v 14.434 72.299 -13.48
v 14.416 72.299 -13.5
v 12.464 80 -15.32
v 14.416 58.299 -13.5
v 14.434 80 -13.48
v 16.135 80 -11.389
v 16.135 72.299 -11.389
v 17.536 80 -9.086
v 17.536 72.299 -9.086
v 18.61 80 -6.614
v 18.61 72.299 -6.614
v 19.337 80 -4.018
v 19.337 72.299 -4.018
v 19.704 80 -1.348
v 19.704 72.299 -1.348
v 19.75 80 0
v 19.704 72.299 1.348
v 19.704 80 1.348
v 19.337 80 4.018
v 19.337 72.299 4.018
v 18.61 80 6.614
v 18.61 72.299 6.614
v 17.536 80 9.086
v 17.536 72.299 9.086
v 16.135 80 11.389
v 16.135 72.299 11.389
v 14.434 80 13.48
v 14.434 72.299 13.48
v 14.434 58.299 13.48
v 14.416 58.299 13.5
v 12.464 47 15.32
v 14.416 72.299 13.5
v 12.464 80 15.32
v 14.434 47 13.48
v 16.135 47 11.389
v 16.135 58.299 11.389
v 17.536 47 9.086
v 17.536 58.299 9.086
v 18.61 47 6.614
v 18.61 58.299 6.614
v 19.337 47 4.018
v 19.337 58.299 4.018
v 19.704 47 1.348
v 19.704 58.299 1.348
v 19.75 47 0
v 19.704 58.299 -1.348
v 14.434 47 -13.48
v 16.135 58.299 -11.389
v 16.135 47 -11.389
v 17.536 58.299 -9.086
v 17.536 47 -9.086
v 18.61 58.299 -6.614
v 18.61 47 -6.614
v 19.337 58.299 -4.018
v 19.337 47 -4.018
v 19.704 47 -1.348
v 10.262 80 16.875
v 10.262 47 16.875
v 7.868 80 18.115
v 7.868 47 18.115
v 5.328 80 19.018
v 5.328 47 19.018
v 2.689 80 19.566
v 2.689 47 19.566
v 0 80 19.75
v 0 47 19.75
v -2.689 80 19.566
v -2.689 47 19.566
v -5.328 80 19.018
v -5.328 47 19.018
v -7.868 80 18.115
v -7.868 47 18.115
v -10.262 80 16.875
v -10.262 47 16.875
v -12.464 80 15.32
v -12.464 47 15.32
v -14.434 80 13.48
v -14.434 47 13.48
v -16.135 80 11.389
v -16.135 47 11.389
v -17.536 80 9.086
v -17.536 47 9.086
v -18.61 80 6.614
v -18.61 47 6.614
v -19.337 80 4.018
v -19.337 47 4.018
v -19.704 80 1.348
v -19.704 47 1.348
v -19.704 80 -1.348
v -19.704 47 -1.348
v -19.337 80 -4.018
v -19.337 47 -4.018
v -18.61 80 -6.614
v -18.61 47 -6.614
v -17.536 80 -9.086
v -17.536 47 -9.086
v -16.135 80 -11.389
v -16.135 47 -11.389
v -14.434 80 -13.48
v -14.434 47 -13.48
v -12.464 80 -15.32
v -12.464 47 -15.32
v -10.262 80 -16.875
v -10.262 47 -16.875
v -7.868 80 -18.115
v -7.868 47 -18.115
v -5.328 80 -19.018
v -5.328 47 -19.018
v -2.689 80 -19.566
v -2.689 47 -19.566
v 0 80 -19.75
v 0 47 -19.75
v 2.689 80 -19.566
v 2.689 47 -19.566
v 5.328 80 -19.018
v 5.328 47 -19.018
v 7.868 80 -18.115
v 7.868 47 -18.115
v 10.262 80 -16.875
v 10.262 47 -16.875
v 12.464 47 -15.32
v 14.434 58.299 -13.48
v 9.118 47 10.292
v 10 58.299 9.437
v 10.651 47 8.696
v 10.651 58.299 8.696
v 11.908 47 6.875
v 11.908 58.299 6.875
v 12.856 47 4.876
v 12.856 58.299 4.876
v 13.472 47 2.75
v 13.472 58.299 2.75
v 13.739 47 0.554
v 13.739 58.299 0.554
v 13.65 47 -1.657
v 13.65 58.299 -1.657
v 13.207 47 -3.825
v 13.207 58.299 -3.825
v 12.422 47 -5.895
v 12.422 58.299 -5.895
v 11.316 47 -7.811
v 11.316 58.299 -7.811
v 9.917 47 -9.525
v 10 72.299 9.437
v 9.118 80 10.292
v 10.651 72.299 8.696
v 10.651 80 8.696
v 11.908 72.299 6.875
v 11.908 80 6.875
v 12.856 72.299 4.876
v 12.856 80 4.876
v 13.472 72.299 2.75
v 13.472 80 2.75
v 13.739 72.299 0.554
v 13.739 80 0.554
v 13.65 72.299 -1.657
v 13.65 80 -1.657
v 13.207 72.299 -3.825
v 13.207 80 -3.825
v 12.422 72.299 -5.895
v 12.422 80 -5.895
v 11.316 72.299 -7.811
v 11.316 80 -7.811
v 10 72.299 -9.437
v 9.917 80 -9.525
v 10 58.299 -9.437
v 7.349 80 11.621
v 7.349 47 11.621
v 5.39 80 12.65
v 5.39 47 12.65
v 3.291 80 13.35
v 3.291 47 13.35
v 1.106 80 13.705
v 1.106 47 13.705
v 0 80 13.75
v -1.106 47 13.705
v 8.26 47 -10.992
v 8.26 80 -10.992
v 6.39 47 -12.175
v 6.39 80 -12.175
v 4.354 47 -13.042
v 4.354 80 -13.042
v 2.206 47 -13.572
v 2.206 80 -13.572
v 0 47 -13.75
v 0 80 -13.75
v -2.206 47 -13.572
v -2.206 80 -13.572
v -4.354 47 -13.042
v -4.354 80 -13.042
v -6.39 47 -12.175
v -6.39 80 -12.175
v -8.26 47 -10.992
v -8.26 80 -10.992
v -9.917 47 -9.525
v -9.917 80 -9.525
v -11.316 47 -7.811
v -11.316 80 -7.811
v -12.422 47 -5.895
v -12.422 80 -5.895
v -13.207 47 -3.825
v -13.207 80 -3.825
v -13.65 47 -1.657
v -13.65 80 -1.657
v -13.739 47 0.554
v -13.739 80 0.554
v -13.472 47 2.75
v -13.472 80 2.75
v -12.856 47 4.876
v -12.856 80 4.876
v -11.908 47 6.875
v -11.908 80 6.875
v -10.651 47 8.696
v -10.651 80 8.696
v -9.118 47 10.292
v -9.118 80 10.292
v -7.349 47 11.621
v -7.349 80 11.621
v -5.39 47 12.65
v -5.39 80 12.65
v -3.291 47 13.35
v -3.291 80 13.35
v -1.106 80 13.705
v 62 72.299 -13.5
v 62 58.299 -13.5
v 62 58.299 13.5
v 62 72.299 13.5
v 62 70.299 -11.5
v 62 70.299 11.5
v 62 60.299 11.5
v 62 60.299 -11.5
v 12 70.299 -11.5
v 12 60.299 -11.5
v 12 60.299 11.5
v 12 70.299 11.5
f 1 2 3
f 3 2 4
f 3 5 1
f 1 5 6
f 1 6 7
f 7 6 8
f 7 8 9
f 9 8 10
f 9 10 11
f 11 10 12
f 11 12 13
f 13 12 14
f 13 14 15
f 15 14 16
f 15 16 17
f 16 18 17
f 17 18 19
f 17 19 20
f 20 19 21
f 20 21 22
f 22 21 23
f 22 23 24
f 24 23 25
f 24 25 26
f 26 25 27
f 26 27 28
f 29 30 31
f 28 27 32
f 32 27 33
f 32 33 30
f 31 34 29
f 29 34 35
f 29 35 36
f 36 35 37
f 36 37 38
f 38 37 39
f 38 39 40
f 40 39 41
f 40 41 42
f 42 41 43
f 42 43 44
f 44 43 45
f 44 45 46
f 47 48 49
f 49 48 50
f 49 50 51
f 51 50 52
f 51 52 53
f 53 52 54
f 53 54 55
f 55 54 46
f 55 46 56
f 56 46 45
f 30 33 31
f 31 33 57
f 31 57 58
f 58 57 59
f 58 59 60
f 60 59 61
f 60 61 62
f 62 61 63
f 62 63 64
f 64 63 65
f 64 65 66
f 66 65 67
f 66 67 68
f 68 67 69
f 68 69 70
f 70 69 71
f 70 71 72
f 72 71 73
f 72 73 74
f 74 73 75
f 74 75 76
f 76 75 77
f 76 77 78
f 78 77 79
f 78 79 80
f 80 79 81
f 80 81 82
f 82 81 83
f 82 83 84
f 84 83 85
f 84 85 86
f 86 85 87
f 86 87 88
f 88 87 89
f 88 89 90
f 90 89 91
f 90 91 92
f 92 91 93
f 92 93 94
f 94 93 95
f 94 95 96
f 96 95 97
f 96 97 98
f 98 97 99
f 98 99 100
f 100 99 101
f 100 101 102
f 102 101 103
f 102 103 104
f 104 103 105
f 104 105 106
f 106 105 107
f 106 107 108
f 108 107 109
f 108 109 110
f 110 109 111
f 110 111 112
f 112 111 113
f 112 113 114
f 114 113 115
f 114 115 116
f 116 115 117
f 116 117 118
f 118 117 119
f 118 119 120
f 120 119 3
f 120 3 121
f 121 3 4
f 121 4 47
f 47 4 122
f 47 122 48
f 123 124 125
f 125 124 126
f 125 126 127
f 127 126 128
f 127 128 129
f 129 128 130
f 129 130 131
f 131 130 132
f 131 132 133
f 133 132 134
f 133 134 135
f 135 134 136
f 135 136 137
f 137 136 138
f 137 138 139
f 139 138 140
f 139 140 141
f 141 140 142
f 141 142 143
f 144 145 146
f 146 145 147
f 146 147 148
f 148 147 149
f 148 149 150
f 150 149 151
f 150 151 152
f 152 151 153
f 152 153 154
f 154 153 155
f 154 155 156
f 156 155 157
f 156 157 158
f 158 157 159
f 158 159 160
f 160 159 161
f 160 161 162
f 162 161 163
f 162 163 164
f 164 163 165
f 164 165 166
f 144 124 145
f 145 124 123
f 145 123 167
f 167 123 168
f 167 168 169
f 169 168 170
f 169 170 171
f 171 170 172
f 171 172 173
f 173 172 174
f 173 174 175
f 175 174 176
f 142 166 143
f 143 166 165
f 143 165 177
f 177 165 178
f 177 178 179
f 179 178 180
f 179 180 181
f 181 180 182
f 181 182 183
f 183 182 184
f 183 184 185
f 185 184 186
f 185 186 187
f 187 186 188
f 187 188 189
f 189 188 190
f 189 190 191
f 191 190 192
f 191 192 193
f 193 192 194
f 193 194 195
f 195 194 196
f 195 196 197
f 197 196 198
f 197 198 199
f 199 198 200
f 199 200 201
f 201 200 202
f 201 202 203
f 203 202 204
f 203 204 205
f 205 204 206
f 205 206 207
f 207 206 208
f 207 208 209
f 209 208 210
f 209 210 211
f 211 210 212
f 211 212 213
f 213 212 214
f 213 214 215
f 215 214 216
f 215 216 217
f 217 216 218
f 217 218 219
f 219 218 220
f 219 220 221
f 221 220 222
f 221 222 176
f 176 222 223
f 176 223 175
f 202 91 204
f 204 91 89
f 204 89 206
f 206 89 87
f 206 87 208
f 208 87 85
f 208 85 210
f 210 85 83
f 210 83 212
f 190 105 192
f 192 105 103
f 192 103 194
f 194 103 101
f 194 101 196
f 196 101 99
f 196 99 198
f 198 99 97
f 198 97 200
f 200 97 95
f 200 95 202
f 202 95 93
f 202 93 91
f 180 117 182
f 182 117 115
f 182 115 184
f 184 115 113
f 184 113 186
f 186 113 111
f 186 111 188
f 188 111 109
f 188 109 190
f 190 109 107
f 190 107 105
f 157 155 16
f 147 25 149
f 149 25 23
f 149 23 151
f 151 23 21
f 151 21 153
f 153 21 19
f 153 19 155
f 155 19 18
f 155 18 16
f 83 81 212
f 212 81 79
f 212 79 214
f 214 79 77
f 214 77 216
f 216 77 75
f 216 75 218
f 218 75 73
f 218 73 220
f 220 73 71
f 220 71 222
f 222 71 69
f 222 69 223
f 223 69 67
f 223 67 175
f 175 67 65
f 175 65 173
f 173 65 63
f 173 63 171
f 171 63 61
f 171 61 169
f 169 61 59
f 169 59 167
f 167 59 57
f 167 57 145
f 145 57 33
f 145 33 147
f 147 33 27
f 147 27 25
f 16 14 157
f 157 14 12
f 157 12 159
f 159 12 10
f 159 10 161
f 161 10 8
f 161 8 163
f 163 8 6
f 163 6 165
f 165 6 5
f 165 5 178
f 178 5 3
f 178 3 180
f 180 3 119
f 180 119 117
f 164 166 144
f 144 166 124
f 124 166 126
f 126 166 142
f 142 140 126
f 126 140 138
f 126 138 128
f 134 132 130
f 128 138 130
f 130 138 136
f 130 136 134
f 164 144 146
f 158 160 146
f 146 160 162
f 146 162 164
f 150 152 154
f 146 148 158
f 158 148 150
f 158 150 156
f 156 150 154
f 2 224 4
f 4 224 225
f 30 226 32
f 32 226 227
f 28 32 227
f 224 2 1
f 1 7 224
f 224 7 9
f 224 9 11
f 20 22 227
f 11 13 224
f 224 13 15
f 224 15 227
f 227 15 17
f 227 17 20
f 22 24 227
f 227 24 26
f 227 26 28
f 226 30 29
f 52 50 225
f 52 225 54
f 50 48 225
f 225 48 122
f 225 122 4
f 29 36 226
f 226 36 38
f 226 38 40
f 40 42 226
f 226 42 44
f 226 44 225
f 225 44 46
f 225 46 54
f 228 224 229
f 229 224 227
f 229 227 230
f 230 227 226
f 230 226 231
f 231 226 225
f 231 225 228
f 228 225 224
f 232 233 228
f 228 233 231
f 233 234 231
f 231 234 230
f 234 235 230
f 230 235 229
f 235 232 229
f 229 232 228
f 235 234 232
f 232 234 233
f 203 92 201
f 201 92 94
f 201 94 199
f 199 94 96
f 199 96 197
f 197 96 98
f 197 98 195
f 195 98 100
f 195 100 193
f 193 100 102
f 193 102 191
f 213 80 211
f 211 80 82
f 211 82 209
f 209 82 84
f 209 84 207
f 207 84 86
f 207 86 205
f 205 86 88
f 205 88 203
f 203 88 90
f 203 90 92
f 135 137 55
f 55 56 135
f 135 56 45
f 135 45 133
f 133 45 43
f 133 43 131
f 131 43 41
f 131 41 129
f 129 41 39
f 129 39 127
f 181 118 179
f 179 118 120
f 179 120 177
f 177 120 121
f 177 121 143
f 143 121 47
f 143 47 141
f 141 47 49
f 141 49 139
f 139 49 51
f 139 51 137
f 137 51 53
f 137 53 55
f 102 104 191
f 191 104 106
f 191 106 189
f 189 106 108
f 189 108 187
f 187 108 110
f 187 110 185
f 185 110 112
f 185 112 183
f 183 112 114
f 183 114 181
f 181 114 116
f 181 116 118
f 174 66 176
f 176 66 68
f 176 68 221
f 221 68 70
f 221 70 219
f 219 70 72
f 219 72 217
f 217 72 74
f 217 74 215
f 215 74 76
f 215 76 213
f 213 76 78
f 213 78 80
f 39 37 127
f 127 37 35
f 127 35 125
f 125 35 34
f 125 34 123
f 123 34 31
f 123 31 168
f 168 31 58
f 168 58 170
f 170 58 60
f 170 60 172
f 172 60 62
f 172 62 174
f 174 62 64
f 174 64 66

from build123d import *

# Parameters (mm, degrees)
SKETCH_356_R              = 19.75
SKETCH_356_R_2            = 13.75
EXTRUDE_6_27_5_3_10_DEPTH = 80
SKETCH_7_W                = 27
SKETCH_7_H                = 14
EXTRUDE_2_DEPTH           = 52
SKETCH_8_W                = 23
SKETCH_8_H                = 10
CUT_EXTRUDE_1_DEPTH       = 50
SKETCH_9_R                = 19.75
SKETCH_9_R_2              = 13.75
CUT_EXTRUDE_1_2_DEPTH     = 47


with BuildPart() as part:
    # Sketch 356 → 6分管 內直徑27.5厚度3長度10 (new body)
    with BuildSketch(Plane(origin=(0, 0, 0), x_dir=(1, 0, 0), z_dir=(0, 1, 0))):
        Circle(SKETCH_356_R)
        Circle(SKETCH_356_R_2, mode=Mode.SUBTRACT)
    extrude(amount=EXTRUDE_6_27_5_3_10_DEPTH)

    # 草圖7 → 填料-伸長2 (add)
    with BuildSketch(Plane(origin=(10, 0, 0), x_dir=(0, 0, -1), z_dir=(1, 0, 0))):
        with Locations((0, 65.299252319)):
            Rectangle(SKETCH_7_W, SKETCH_7_H)
    extrude(amount=EXTRUDE_2_DEPTH)

    # 草圖8 → Cut-Extrude 1 (cut)
    with BuildSketch(Plane(origin=(62, 0, 0), x_dir=(0, 0, -1), z_dir=(1, 0, 0))):
        with Locations((0, 65.299252319)):
            Rectangle(SKETCH_8_W, SKETCH_8_H)
    extrude(amount=-CUT_EXTRUDE_1_DEPTH, mode=Mode.SUBTRACT)

    # 草圖9 → Cut-Extrude 1 2 (cut)
    with BuildSketch(Plane.XZ):
        Circle(SKETCH_9_R)
        Circle(SKETCH_9_R_2, mode=Mode.SUBTRACT)
    extrude(amount=-CUT_EXTRUDE_1_2_DEPTH, mode=Mode.SUBTRACT)


solid = part.part
